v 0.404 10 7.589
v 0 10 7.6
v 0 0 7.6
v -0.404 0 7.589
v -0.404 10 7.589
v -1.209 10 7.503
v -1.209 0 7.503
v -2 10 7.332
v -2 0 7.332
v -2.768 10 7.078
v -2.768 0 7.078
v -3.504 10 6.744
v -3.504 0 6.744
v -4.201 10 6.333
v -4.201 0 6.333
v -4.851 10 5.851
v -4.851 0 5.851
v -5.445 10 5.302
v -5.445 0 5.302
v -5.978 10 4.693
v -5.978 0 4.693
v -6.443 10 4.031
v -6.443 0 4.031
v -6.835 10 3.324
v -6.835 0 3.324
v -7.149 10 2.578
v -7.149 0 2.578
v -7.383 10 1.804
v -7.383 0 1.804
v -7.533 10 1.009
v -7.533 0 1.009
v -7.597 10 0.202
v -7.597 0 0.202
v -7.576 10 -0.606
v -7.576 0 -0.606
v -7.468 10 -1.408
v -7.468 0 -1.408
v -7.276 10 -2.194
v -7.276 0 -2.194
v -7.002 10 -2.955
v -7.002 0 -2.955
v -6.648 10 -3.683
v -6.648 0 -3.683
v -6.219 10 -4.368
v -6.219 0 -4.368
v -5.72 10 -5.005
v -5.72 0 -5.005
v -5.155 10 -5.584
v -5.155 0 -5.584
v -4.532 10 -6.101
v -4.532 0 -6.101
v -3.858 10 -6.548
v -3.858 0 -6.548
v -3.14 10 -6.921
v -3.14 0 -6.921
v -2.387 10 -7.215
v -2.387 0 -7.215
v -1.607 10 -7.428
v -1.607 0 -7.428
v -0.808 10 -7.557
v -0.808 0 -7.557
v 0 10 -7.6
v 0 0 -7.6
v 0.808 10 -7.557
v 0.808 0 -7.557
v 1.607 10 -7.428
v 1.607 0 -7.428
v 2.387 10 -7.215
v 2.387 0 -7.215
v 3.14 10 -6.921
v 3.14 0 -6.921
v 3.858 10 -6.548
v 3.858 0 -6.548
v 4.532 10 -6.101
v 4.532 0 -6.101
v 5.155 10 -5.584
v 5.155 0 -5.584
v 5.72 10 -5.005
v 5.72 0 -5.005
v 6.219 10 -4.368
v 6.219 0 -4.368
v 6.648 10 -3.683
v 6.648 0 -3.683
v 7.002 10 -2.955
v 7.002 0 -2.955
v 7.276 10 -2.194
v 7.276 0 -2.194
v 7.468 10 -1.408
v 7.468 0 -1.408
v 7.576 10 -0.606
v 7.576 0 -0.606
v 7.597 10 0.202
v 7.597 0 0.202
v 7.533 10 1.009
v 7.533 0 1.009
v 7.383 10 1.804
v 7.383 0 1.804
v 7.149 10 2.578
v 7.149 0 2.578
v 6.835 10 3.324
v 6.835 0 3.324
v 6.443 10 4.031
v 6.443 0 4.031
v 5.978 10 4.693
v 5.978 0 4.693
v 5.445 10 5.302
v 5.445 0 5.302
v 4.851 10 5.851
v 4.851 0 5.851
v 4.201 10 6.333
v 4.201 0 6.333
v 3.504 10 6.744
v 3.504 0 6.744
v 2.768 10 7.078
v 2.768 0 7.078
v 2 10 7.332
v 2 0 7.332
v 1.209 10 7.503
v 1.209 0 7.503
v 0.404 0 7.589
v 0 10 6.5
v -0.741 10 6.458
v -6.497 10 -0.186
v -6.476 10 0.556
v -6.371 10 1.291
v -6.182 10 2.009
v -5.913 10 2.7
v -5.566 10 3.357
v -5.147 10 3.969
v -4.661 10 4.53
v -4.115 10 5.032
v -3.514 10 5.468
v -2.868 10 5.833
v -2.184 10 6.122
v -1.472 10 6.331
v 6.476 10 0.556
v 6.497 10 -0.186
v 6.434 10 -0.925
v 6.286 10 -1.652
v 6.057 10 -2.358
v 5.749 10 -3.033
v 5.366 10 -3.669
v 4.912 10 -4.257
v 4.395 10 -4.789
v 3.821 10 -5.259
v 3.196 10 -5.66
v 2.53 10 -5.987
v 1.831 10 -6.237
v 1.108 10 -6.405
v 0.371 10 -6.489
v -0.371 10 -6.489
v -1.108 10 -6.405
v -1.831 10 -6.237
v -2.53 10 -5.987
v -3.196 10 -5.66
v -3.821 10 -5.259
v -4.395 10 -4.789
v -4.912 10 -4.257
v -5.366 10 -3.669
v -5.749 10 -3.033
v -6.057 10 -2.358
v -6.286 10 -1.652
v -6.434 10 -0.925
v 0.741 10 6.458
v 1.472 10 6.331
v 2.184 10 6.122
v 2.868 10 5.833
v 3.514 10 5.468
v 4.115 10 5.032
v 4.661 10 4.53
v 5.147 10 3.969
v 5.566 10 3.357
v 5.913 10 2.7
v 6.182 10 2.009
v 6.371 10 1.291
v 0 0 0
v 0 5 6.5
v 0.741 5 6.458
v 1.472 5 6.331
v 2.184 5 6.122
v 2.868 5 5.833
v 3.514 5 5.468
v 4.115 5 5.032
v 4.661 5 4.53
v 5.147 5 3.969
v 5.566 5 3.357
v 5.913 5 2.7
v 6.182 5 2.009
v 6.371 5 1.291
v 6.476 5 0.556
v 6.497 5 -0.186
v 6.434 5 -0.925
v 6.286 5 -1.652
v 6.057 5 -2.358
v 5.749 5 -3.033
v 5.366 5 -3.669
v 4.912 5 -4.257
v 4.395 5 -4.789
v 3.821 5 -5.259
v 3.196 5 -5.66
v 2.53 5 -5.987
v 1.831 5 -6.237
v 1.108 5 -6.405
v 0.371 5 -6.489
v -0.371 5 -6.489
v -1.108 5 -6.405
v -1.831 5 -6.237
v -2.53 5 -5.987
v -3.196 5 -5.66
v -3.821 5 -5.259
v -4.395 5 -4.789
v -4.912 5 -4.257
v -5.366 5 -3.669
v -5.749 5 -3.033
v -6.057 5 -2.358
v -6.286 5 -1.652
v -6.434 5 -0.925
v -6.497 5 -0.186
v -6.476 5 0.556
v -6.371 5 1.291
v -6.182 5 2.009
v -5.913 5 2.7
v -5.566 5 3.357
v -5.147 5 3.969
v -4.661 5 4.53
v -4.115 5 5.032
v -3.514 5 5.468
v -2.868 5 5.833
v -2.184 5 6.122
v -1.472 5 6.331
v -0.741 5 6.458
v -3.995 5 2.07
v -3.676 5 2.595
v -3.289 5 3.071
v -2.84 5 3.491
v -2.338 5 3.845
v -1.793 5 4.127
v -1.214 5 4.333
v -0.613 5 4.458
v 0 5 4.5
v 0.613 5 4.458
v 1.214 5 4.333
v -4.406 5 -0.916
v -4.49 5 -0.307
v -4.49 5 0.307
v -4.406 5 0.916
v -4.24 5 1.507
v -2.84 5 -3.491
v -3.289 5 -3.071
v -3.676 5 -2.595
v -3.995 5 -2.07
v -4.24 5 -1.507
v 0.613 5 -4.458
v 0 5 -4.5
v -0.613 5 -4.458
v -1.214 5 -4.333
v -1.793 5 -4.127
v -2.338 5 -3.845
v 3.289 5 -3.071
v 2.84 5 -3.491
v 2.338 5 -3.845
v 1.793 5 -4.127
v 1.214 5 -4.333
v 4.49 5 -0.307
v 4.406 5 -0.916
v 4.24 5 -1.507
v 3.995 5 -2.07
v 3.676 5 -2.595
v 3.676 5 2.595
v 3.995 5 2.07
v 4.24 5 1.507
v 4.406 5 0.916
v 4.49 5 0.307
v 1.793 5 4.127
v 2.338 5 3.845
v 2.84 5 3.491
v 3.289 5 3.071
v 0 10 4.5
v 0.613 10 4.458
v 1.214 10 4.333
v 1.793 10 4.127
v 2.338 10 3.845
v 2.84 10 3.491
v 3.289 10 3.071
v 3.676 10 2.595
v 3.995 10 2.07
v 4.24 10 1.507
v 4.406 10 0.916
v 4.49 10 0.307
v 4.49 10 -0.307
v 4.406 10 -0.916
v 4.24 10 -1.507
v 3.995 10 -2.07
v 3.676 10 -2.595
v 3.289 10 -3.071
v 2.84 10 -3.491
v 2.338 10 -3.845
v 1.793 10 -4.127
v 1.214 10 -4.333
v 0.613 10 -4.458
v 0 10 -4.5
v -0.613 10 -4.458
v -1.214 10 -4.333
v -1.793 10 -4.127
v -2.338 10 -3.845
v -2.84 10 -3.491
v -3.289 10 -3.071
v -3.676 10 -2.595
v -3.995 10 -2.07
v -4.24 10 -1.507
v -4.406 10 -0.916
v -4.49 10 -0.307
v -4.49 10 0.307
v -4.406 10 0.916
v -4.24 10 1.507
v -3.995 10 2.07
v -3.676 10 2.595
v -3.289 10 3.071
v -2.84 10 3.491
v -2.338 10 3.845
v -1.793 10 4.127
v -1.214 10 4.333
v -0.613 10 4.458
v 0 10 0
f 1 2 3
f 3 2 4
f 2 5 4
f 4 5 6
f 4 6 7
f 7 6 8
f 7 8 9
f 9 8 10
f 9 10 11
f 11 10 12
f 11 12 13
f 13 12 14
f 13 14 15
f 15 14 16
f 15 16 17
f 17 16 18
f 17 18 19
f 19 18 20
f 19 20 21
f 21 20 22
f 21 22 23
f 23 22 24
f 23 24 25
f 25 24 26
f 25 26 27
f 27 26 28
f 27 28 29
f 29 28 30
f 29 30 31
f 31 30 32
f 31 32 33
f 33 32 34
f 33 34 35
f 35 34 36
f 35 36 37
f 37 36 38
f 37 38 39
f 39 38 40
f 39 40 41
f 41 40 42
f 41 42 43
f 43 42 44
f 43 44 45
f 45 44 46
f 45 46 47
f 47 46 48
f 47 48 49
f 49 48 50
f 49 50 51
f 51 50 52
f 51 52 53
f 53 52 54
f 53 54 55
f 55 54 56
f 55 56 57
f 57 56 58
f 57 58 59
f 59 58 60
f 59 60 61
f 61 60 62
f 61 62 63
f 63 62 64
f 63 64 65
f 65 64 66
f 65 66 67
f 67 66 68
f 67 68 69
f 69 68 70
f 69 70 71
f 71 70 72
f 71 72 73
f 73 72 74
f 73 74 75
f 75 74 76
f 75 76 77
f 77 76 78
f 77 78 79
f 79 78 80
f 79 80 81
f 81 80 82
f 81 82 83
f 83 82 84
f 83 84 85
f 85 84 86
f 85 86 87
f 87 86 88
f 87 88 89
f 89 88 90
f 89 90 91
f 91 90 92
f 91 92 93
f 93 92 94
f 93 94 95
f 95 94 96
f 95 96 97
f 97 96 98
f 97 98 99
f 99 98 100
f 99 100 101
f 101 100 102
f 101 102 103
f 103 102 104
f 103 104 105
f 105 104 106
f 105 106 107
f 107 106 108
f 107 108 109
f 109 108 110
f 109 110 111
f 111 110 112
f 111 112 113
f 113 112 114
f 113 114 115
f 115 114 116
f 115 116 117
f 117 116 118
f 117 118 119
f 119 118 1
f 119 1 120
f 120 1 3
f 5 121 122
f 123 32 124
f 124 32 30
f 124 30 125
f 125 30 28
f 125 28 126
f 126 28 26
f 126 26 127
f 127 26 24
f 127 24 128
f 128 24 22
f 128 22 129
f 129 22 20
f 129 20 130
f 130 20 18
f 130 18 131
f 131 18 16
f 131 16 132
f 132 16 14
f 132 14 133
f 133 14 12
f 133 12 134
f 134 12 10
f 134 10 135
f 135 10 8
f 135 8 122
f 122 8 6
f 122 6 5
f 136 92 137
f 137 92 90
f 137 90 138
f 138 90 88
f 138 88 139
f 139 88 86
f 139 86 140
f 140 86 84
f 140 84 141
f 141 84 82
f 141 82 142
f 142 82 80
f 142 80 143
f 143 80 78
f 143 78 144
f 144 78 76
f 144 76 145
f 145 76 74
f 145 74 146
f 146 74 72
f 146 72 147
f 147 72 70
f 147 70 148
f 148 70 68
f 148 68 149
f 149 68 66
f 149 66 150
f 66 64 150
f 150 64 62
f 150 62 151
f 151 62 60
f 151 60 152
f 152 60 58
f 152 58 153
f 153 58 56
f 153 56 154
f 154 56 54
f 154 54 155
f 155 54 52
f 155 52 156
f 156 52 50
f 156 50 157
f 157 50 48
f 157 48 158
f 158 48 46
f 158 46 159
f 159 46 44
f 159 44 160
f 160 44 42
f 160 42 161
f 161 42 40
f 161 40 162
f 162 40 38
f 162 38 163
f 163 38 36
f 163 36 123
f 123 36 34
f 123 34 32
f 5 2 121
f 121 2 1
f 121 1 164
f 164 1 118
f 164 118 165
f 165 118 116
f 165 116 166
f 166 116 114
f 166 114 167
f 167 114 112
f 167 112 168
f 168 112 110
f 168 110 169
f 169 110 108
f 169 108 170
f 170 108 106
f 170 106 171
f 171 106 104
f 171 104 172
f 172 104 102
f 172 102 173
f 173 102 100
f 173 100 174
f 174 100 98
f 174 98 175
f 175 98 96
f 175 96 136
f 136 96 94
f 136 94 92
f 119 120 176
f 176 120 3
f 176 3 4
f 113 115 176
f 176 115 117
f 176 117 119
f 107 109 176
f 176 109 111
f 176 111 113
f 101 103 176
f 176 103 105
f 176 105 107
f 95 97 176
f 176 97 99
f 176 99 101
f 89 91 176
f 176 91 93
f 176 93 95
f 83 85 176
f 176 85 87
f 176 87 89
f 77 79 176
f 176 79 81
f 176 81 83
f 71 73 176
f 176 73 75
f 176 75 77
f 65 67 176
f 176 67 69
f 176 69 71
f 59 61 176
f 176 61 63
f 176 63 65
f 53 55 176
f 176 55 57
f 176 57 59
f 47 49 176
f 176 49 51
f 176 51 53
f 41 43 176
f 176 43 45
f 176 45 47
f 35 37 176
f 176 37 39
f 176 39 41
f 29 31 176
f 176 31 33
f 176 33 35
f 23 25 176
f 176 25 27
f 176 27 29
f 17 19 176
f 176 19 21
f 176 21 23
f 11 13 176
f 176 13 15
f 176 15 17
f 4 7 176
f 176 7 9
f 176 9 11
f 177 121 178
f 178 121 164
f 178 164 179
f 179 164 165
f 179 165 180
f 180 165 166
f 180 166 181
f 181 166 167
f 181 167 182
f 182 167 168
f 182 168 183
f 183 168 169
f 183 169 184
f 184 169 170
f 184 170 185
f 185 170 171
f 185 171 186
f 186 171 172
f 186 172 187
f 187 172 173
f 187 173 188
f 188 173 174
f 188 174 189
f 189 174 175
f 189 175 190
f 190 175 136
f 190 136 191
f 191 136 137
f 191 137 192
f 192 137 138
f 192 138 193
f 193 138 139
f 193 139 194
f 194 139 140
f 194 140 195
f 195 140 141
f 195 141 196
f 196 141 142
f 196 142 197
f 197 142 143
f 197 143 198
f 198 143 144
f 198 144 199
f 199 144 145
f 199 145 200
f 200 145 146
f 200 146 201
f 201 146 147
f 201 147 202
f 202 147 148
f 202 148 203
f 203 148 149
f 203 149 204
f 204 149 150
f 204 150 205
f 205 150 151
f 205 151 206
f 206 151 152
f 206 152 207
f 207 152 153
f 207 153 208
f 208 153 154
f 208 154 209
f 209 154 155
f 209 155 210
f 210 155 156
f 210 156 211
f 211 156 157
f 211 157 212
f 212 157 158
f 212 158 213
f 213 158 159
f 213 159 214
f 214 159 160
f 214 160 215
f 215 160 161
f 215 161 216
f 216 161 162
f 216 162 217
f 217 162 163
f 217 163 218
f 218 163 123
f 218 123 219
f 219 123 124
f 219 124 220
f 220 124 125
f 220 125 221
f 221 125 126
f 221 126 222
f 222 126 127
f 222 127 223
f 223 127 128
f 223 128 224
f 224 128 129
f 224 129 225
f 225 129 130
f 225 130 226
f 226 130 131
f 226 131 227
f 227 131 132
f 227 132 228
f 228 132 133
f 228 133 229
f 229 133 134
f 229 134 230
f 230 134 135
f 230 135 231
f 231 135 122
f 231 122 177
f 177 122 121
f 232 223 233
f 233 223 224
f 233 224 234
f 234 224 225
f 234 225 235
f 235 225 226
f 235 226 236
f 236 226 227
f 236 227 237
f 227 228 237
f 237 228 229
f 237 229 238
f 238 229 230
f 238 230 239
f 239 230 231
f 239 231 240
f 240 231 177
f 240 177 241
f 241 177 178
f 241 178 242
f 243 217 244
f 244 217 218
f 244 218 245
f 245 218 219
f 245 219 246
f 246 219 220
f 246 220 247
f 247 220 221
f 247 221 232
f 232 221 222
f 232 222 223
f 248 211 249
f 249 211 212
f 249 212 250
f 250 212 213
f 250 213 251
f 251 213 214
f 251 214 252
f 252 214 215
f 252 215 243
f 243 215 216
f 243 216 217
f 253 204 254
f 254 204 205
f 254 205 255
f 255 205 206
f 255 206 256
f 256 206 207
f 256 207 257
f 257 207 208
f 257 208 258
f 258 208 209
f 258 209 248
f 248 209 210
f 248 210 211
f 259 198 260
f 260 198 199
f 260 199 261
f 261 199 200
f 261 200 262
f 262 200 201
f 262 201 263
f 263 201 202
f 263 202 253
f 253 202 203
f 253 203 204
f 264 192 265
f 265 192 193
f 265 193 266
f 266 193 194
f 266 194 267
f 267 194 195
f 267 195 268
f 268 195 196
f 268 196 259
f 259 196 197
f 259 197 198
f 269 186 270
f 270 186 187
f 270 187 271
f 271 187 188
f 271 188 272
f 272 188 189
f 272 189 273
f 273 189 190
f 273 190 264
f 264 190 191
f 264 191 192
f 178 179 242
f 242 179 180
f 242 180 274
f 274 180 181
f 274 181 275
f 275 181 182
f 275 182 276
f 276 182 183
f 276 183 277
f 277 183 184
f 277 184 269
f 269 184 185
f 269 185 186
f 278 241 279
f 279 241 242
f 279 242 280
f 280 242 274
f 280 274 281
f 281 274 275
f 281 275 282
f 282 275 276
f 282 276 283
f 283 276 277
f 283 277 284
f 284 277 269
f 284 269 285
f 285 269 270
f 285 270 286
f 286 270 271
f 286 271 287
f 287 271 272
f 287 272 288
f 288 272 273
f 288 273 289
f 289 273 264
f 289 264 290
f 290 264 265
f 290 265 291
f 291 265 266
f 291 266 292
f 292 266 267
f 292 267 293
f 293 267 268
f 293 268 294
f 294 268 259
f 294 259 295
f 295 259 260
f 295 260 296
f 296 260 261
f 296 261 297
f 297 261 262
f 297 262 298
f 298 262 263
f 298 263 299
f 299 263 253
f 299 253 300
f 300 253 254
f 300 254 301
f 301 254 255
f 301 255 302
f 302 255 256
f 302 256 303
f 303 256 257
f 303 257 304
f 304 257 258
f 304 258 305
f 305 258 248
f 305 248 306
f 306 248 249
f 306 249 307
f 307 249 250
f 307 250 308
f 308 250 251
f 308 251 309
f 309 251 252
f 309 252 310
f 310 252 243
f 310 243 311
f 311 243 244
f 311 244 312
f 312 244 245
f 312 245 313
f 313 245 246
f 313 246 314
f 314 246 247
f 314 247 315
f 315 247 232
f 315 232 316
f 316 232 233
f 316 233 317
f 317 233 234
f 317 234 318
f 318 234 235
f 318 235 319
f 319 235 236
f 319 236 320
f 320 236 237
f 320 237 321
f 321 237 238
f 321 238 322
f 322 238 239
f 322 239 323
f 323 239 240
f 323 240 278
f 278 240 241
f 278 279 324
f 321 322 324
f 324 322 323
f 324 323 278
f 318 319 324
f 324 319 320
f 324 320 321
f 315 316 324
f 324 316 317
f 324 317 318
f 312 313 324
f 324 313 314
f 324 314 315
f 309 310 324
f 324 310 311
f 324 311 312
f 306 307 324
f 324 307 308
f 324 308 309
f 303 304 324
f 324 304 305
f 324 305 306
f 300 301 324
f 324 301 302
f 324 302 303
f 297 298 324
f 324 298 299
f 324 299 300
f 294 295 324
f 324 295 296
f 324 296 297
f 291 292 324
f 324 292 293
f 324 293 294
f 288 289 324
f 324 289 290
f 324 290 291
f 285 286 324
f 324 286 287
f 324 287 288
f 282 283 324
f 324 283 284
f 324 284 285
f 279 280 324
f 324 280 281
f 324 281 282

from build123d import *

# Parameters (mm, degrees)
SKETCH_1_R          = 7.6
EXTRUDE_1_DEPTH     = 10
SKETCH_5_R          = 6.5
SKETCH_5_R_2        = 4.5
CUT_EXTRUDE_1_DEPTH = 5


with BuildPart() as part:
    # 草图1 → 凸台-拉伸1 (new body)
    with BuildSketch(Plane(origin=(0, 0, 0), x_dir=(1, 0, 0), z_dir=(0, 1, 0))):
        with Locations(Location((0, 0, 0), (0, 0, 270))):
            Circle(SKETCH_1_R)
    extrude(amount=EXTRUDE_1_DEPTH)

    # 草图5 → 切除-拉伸1 (cut)
    with BuildSketch(Plane(origin=(0, 10, 0), x_dir=(1, 0, 0), z_dir=(0, 1, 0))):
        with Locations(Location((0, 0, 0), (0, 0, 270))):
            Circle(SKETCH_5_R)
        with Locations(Location((0, 0, 0), (0, 0, 270))):
            Circle(SKETCH_5_R_2, mode=Mode.SUBTRACT)
    extrude(amount=-CUT_EXTRUDE_1_DEPTH, mode=Mode.SUBTRACT)


solid = part.part
